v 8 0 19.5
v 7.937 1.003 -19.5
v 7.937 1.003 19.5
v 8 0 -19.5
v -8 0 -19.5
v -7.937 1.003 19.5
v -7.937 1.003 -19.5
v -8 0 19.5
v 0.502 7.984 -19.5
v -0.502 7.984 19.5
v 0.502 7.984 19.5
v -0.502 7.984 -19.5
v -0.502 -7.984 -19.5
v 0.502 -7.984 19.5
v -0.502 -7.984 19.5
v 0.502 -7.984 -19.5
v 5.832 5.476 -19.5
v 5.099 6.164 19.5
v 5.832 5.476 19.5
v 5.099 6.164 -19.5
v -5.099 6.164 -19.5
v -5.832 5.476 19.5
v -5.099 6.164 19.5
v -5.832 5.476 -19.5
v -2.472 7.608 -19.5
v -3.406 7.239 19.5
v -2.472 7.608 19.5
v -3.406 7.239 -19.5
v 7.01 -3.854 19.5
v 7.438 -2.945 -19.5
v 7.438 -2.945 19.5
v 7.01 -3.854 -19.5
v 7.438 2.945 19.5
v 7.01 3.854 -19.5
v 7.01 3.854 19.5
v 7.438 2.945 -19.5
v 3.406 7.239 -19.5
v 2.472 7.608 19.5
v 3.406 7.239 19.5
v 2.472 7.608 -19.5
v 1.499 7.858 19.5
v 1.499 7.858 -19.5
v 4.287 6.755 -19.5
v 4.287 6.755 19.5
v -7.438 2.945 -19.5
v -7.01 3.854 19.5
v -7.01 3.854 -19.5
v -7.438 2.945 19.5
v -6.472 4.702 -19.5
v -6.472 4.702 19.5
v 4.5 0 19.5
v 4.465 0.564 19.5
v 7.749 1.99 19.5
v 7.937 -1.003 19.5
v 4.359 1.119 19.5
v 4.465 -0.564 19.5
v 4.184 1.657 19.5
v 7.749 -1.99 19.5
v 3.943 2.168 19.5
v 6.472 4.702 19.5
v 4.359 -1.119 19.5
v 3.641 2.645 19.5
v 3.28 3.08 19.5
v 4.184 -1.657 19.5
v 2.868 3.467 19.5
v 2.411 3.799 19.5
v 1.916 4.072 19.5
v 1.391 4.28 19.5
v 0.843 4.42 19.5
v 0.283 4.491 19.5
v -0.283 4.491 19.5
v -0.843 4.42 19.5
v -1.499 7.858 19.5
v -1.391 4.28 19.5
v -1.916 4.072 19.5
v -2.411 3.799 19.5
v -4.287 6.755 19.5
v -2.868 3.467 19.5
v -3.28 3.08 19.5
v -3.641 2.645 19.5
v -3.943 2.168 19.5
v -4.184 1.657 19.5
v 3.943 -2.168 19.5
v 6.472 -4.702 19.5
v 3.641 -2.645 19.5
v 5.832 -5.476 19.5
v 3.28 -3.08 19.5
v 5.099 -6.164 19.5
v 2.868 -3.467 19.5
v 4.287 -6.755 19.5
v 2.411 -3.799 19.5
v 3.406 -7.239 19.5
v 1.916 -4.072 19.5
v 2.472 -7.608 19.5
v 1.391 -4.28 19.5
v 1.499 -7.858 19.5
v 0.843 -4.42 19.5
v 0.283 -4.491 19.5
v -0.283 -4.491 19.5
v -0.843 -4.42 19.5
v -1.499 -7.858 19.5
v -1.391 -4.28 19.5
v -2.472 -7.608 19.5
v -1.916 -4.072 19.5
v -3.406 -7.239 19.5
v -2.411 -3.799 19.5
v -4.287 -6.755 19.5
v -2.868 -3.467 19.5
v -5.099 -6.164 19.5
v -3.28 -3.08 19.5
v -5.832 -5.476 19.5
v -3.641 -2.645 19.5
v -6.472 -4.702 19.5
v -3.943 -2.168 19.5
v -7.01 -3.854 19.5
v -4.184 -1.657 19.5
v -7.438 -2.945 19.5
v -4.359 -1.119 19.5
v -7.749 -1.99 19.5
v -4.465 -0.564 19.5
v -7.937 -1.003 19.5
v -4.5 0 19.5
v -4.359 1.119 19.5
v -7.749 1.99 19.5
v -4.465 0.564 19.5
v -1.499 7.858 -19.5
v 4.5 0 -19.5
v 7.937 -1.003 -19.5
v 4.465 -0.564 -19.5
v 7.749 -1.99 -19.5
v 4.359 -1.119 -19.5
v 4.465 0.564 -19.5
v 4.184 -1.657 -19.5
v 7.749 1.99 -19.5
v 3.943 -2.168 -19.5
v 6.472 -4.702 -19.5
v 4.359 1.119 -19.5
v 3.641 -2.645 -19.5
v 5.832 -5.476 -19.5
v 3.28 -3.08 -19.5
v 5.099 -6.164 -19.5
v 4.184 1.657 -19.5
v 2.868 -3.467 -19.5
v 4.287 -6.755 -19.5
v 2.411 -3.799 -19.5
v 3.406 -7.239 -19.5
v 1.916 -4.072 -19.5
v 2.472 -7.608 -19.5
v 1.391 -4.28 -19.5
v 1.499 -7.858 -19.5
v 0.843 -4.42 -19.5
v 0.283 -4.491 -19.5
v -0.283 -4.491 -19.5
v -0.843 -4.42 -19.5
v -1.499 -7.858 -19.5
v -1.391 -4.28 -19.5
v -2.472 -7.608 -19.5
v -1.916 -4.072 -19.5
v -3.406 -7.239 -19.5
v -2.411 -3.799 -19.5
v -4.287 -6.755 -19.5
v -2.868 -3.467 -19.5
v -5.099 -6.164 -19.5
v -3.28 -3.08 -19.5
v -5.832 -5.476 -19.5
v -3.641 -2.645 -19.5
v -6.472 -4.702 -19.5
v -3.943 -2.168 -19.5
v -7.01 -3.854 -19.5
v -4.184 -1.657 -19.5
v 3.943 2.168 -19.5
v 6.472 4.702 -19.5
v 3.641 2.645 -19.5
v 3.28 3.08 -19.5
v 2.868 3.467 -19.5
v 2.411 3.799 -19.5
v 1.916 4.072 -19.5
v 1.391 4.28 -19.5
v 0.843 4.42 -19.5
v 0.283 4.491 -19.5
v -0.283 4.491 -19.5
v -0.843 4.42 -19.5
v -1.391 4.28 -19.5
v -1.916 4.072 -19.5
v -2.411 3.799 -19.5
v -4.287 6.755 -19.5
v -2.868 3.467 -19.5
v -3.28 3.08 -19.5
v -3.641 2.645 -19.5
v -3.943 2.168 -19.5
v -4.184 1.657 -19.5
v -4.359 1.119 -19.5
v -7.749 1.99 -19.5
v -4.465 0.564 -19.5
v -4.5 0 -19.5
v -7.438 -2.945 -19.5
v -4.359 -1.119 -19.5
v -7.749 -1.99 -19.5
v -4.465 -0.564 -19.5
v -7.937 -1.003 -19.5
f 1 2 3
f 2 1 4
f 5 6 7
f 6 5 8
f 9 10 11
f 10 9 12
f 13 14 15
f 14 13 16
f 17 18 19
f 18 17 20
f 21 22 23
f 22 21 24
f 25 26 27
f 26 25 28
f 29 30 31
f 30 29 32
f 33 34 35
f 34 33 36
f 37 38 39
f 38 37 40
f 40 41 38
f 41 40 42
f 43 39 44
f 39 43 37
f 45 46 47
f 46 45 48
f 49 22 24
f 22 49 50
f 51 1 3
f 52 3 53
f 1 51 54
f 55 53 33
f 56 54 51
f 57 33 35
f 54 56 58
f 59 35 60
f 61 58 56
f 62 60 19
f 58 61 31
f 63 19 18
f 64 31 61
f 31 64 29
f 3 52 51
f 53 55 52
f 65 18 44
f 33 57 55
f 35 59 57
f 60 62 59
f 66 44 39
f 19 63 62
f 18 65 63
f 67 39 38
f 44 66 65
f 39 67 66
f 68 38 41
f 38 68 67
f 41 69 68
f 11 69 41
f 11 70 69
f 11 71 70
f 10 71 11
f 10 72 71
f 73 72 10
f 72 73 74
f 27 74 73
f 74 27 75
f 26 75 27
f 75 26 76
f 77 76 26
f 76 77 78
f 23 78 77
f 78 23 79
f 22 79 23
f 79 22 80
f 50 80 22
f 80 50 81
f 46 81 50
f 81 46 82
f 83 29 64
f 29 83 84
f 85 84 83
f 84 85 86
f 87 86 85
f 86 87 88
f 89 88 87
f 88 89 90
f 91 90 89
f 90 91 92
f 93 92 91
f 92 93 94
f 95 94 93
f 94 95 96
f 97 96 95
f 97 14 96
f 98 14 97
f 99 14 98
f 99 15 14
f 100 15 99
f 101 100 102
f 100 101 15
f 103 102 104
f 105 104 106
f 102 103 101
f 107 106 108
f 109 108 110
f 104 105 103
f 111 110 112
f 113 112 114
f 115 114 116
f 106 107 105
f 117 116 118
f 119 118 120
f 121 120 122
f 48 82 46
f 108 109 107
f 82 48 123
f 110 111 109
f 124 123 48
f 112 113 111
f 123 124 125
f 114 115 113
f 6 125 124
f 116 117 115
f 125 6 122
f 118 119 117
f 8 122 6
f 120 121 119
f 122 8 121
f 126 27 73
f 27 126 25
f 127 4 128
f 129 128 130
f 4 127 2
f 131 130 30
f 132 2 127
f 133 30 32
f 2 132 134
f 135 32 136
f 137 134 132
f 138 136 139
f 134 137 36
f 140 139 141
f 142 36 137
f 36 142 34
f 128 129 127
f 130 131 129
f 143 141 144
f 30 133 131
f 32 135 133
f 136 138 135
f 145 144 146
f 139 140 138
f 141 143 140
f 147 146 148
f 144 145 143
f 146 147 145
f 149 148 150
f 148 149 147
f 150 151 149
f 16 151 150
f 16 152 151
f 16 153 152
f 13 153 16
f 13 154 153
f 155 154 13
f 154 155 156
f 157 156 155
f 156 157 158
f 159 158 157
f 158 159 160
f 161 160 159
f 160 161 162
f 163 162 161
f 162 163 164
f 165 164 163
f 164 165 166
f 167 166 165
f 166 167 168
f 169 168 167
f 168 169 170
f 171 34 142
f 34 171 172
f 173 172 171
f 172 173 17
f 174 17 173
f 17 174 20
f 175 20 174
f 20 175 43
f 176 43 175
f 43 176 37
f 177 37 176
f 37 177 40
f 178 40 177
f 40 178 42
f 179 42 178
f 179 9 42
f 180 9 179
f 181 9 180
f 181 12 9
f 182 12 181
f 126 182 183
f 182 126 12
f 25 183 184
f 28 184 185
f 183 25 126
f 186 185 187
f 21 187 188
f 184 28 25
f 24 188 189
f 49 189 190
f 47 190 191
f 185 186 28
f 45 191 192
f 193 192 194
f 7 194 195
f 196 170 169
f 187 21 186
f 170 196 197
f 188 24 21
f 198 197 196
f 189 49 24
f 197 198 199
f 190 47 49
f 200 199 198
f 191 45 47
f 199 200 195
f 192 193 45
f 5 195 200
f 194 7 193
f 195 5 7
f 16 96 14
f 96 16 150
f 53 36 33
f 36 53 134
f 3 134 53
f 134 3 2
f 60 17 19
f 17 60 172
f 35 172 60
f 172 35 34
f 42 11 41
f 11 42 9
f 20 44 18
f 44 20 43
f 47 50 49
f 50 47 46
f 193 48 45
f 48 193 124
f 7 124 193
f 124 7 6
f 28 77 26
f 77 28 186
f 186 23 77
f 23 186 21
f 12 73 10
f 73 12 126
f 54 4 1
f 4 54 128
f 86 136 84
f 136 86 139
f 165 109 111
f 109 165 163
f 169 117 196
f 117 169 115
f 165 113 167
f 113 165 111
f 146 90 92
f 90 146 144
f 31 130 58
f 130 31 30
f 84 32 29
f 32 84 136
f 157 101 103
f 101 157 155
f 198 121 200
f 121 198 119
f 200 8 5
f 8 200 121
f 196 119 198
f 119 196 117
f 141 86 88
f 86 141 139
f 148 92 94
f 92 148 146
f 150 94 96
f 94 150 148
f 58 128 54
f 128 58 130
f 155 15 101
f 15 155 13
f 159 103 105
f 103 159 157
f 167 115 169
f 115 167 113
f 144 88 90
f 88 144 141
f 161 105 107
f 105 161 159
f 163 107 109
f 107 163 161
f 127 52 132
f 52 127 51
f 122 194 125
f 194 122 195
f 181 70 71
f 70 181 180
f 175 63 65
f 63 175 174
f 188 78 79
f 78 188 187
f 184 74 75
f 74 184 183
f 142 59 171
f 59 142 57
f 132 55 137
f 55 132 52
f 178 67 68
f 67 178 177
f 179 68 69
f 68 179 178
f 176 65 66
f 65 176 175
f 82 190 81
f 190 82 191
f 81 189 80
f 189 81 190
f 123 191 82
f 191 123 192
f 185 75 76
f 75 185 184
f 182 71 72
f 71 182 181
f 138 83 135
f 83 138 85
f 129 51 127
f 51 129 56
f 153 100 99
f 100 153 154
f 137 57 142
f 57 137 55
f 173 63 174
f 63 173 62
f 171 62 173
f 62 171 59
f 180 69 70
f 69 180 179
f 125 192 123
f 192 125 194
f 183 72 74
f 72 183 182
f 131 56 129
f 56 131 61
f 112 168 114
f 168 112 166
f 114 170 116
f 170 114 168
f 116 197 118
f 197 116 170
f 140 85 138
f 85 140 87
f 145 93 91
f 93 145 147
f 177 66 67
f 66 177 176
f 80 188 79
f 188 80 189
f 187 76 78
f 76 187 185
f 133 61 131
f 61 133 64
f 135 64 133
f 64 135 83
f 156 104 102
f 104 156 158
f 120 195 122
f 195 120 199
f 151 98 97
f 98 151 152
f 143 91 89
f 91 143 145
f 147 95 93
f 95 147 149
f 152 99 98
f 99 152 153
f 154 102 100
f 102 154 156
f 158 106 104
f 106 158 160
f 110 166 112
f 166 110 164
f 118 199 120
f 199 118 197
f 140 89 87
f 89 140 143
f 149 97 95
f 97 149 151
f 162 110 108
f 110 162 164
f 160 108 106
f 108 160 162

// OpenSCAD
$fn = 50;


difference() {
	union() {
		translate(v = [0, 0, -19.5000000000]) {
			cylinder(h = 39, r = 8.0000000000);
		}
	}
	union() {
		translate(v = [0, 0, -100.0000000000]) {
			cylinder(h = 200, r = 4.5000000000);
		}
	}
}
